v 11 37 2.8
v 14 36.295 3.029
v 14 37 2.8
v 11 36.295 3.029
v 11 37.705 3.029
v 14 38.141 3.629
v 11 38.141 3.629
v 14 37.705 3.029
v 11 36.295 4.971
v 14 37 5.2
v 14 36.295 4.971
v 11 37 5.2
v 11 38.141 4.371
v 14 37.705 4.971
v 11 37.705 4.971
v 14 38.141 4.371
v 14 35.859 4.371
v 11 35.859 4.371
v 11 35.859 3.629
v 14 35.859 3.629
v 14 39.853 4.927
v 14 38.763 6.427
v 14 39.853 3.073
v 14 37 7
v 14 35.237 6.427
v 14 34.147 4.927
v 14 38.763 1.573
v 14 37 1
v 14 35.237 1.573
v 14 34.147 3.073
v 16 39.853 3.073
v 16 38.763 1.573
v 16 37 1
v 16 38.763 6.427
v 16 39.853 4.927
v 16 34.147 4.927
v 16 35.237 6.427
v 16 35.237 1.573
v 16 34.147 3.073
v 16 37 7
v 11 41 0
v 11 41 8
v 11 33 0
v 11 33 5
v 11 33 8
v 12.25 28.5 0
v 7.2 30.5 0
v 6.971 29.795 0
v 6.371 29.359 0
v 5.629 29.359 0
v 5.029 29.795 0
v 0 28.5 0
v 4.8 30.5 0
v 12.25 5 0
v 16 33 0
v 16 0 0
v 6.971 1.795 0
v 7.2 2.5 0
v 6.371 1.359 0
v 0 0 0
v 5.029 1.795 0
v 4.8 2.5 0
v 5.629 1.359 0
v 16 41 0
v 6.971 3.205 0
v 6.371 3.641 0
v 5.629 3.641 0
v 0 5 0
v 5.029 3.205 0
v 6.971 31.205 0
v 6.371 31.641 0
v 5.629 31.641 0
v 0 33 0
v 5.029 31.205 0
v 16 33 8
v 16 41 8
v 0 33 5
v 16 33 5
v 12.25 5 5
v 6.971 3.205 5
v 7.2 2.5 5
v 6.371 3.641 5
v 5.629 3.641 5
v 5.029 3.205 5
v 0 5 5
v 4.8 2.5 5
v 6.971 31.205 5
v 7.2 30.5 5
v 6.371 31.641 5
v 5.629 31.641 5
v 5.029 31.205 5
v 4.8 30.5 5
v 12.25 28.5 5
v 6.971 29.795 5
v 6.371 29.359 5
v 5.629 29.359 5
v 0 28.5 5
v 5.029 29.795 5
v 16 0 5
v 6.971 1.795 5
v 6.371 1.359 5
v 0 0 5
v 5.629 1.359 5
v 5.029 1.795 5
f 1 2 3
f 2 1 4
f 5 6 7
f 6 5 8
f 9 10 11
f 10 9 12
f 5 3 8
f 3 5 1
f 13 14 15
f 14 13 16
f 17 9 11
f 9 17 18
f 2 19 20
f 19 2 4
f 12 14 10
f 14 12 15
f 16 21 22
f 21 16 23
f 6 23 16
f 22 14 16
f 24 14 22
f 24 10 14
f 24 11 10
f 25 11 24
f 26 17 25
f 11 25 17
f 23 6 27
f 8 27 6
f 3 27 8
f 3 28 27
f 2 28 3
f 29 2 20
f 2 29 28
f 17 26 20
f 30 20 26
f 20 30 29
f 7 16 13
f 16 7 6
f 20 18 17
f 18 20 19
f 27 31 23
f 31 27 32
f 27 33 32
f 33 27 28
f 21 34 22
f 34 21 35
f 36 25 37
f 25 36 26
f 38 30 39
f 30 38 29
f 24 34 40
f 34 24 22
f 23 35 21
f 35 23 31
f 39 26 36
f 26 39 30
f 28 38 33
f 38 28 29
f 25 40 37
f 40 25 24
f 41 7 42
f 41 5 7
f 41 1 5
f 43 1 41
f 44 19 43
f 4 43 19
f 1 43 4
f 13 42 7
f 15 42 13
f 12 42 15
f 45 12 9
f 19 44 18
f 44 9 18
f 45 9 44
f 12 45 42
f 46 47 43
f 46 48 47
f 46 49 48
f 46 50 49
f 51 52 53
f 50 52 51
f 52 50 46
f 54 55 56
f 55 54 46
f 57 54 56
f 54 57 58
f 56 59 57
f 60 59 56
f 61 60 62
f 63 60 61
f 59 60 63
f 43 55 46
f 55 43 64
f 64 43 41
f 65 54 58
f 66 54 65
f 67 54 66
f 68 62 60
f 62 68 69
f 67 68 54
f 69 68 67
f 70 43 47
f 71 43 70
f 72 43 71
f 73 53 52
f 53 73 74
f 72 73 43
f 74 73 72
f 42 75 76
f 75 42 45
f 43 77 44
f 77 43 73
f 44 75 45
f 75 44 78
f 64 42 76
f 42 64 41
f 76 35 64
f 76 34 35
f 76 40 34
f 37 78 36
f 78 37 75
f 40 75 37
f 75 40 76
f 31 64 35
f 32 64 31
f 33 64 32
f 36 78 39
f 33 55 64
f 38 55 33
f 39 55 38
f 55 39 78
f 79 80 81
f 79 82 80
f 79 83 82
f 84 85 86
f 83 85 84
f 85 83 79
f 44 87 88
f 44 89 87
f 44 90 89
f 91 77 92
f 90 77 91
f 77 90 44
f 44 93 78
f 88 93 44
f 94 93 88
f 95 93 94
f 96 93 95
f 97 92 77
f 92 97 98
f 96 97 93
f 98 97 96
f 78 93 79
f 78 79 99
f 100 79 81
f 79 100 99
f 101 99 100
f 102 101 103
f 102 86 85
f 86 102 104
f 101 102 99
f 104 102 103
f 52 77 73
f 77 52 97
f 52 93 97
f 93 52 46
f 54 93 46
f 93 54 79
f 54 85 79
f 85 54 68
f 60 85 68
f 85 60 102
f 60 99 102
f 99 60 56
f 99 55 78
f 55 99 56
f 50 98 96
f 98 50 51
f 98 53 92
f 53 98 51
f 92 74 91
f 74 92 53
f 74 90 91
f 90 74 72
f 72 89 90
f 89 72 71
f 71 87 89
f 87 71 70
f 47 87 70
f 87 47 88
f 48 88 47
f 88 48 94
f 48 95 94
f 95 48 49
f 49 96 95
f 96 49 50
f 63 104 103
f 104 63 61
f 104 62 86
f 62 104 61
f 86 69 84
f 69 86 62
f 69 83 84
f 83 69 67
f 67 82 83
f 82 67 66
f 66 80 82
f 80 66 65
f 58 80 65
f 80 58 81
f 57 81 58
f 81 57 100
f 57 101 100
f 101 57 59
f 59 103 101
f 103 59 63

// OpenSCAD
//////////////////////////
// MOTOR - HOLDER

module screws() {

    radius = 1.2;
    distance = 28;

    translate([0,0])
        circle(r=radius, $fn=10);
    translate([0,distance])
        circle(r=radius, $fn=10);
}

module body() {

    width = 12.5;
    length = 23.5;

    translate([-width/2, 2.5])
        square([width, length]);
}

module motor() {
    screws();
    body();
}

//////////////////////////
// LEG

module leg() {
    thickness = 5;
    length = 33;
    width = 16;
    points = [[0,0],[0,length],[width,length],[width,0]];

    linear_extrude(height=thickness)
        difference() {
            polygon(points=points);
            translate([6, 2.5])
                motor();
        }
}

//////////////////////////
// SPIN SHAFT

module spin_shaft() {
    distance = 37;
    small_radius = 1.2;
    large_radius = 3;
    small_depth = 4;
    large_depth = 2;

    translate([-4,distance,10])
        linear_extrude(height=small_depth)
                circle(r=small_radius, $fn=10);
    translate([-4,distance,14])
        linear_extrude(height=large_depth)
                circle(r=large_radius, $fn=10);
}

//////////////////////////
// SPIN SHAFT - SOCKET

module spin_shaft_socket() {
    distance = 33;
    width = 8;
    depth = 5;

    translate([-8,distance,11])
            linear_extrude(height=depth)
                square([width, width]);
}

//////////////////////////
// RENDER

leg();
difference() {
    rotate([0,90,0])
        spin_shaft_socket();
    rotate([0,90,0])
        spin_shaft();
}
